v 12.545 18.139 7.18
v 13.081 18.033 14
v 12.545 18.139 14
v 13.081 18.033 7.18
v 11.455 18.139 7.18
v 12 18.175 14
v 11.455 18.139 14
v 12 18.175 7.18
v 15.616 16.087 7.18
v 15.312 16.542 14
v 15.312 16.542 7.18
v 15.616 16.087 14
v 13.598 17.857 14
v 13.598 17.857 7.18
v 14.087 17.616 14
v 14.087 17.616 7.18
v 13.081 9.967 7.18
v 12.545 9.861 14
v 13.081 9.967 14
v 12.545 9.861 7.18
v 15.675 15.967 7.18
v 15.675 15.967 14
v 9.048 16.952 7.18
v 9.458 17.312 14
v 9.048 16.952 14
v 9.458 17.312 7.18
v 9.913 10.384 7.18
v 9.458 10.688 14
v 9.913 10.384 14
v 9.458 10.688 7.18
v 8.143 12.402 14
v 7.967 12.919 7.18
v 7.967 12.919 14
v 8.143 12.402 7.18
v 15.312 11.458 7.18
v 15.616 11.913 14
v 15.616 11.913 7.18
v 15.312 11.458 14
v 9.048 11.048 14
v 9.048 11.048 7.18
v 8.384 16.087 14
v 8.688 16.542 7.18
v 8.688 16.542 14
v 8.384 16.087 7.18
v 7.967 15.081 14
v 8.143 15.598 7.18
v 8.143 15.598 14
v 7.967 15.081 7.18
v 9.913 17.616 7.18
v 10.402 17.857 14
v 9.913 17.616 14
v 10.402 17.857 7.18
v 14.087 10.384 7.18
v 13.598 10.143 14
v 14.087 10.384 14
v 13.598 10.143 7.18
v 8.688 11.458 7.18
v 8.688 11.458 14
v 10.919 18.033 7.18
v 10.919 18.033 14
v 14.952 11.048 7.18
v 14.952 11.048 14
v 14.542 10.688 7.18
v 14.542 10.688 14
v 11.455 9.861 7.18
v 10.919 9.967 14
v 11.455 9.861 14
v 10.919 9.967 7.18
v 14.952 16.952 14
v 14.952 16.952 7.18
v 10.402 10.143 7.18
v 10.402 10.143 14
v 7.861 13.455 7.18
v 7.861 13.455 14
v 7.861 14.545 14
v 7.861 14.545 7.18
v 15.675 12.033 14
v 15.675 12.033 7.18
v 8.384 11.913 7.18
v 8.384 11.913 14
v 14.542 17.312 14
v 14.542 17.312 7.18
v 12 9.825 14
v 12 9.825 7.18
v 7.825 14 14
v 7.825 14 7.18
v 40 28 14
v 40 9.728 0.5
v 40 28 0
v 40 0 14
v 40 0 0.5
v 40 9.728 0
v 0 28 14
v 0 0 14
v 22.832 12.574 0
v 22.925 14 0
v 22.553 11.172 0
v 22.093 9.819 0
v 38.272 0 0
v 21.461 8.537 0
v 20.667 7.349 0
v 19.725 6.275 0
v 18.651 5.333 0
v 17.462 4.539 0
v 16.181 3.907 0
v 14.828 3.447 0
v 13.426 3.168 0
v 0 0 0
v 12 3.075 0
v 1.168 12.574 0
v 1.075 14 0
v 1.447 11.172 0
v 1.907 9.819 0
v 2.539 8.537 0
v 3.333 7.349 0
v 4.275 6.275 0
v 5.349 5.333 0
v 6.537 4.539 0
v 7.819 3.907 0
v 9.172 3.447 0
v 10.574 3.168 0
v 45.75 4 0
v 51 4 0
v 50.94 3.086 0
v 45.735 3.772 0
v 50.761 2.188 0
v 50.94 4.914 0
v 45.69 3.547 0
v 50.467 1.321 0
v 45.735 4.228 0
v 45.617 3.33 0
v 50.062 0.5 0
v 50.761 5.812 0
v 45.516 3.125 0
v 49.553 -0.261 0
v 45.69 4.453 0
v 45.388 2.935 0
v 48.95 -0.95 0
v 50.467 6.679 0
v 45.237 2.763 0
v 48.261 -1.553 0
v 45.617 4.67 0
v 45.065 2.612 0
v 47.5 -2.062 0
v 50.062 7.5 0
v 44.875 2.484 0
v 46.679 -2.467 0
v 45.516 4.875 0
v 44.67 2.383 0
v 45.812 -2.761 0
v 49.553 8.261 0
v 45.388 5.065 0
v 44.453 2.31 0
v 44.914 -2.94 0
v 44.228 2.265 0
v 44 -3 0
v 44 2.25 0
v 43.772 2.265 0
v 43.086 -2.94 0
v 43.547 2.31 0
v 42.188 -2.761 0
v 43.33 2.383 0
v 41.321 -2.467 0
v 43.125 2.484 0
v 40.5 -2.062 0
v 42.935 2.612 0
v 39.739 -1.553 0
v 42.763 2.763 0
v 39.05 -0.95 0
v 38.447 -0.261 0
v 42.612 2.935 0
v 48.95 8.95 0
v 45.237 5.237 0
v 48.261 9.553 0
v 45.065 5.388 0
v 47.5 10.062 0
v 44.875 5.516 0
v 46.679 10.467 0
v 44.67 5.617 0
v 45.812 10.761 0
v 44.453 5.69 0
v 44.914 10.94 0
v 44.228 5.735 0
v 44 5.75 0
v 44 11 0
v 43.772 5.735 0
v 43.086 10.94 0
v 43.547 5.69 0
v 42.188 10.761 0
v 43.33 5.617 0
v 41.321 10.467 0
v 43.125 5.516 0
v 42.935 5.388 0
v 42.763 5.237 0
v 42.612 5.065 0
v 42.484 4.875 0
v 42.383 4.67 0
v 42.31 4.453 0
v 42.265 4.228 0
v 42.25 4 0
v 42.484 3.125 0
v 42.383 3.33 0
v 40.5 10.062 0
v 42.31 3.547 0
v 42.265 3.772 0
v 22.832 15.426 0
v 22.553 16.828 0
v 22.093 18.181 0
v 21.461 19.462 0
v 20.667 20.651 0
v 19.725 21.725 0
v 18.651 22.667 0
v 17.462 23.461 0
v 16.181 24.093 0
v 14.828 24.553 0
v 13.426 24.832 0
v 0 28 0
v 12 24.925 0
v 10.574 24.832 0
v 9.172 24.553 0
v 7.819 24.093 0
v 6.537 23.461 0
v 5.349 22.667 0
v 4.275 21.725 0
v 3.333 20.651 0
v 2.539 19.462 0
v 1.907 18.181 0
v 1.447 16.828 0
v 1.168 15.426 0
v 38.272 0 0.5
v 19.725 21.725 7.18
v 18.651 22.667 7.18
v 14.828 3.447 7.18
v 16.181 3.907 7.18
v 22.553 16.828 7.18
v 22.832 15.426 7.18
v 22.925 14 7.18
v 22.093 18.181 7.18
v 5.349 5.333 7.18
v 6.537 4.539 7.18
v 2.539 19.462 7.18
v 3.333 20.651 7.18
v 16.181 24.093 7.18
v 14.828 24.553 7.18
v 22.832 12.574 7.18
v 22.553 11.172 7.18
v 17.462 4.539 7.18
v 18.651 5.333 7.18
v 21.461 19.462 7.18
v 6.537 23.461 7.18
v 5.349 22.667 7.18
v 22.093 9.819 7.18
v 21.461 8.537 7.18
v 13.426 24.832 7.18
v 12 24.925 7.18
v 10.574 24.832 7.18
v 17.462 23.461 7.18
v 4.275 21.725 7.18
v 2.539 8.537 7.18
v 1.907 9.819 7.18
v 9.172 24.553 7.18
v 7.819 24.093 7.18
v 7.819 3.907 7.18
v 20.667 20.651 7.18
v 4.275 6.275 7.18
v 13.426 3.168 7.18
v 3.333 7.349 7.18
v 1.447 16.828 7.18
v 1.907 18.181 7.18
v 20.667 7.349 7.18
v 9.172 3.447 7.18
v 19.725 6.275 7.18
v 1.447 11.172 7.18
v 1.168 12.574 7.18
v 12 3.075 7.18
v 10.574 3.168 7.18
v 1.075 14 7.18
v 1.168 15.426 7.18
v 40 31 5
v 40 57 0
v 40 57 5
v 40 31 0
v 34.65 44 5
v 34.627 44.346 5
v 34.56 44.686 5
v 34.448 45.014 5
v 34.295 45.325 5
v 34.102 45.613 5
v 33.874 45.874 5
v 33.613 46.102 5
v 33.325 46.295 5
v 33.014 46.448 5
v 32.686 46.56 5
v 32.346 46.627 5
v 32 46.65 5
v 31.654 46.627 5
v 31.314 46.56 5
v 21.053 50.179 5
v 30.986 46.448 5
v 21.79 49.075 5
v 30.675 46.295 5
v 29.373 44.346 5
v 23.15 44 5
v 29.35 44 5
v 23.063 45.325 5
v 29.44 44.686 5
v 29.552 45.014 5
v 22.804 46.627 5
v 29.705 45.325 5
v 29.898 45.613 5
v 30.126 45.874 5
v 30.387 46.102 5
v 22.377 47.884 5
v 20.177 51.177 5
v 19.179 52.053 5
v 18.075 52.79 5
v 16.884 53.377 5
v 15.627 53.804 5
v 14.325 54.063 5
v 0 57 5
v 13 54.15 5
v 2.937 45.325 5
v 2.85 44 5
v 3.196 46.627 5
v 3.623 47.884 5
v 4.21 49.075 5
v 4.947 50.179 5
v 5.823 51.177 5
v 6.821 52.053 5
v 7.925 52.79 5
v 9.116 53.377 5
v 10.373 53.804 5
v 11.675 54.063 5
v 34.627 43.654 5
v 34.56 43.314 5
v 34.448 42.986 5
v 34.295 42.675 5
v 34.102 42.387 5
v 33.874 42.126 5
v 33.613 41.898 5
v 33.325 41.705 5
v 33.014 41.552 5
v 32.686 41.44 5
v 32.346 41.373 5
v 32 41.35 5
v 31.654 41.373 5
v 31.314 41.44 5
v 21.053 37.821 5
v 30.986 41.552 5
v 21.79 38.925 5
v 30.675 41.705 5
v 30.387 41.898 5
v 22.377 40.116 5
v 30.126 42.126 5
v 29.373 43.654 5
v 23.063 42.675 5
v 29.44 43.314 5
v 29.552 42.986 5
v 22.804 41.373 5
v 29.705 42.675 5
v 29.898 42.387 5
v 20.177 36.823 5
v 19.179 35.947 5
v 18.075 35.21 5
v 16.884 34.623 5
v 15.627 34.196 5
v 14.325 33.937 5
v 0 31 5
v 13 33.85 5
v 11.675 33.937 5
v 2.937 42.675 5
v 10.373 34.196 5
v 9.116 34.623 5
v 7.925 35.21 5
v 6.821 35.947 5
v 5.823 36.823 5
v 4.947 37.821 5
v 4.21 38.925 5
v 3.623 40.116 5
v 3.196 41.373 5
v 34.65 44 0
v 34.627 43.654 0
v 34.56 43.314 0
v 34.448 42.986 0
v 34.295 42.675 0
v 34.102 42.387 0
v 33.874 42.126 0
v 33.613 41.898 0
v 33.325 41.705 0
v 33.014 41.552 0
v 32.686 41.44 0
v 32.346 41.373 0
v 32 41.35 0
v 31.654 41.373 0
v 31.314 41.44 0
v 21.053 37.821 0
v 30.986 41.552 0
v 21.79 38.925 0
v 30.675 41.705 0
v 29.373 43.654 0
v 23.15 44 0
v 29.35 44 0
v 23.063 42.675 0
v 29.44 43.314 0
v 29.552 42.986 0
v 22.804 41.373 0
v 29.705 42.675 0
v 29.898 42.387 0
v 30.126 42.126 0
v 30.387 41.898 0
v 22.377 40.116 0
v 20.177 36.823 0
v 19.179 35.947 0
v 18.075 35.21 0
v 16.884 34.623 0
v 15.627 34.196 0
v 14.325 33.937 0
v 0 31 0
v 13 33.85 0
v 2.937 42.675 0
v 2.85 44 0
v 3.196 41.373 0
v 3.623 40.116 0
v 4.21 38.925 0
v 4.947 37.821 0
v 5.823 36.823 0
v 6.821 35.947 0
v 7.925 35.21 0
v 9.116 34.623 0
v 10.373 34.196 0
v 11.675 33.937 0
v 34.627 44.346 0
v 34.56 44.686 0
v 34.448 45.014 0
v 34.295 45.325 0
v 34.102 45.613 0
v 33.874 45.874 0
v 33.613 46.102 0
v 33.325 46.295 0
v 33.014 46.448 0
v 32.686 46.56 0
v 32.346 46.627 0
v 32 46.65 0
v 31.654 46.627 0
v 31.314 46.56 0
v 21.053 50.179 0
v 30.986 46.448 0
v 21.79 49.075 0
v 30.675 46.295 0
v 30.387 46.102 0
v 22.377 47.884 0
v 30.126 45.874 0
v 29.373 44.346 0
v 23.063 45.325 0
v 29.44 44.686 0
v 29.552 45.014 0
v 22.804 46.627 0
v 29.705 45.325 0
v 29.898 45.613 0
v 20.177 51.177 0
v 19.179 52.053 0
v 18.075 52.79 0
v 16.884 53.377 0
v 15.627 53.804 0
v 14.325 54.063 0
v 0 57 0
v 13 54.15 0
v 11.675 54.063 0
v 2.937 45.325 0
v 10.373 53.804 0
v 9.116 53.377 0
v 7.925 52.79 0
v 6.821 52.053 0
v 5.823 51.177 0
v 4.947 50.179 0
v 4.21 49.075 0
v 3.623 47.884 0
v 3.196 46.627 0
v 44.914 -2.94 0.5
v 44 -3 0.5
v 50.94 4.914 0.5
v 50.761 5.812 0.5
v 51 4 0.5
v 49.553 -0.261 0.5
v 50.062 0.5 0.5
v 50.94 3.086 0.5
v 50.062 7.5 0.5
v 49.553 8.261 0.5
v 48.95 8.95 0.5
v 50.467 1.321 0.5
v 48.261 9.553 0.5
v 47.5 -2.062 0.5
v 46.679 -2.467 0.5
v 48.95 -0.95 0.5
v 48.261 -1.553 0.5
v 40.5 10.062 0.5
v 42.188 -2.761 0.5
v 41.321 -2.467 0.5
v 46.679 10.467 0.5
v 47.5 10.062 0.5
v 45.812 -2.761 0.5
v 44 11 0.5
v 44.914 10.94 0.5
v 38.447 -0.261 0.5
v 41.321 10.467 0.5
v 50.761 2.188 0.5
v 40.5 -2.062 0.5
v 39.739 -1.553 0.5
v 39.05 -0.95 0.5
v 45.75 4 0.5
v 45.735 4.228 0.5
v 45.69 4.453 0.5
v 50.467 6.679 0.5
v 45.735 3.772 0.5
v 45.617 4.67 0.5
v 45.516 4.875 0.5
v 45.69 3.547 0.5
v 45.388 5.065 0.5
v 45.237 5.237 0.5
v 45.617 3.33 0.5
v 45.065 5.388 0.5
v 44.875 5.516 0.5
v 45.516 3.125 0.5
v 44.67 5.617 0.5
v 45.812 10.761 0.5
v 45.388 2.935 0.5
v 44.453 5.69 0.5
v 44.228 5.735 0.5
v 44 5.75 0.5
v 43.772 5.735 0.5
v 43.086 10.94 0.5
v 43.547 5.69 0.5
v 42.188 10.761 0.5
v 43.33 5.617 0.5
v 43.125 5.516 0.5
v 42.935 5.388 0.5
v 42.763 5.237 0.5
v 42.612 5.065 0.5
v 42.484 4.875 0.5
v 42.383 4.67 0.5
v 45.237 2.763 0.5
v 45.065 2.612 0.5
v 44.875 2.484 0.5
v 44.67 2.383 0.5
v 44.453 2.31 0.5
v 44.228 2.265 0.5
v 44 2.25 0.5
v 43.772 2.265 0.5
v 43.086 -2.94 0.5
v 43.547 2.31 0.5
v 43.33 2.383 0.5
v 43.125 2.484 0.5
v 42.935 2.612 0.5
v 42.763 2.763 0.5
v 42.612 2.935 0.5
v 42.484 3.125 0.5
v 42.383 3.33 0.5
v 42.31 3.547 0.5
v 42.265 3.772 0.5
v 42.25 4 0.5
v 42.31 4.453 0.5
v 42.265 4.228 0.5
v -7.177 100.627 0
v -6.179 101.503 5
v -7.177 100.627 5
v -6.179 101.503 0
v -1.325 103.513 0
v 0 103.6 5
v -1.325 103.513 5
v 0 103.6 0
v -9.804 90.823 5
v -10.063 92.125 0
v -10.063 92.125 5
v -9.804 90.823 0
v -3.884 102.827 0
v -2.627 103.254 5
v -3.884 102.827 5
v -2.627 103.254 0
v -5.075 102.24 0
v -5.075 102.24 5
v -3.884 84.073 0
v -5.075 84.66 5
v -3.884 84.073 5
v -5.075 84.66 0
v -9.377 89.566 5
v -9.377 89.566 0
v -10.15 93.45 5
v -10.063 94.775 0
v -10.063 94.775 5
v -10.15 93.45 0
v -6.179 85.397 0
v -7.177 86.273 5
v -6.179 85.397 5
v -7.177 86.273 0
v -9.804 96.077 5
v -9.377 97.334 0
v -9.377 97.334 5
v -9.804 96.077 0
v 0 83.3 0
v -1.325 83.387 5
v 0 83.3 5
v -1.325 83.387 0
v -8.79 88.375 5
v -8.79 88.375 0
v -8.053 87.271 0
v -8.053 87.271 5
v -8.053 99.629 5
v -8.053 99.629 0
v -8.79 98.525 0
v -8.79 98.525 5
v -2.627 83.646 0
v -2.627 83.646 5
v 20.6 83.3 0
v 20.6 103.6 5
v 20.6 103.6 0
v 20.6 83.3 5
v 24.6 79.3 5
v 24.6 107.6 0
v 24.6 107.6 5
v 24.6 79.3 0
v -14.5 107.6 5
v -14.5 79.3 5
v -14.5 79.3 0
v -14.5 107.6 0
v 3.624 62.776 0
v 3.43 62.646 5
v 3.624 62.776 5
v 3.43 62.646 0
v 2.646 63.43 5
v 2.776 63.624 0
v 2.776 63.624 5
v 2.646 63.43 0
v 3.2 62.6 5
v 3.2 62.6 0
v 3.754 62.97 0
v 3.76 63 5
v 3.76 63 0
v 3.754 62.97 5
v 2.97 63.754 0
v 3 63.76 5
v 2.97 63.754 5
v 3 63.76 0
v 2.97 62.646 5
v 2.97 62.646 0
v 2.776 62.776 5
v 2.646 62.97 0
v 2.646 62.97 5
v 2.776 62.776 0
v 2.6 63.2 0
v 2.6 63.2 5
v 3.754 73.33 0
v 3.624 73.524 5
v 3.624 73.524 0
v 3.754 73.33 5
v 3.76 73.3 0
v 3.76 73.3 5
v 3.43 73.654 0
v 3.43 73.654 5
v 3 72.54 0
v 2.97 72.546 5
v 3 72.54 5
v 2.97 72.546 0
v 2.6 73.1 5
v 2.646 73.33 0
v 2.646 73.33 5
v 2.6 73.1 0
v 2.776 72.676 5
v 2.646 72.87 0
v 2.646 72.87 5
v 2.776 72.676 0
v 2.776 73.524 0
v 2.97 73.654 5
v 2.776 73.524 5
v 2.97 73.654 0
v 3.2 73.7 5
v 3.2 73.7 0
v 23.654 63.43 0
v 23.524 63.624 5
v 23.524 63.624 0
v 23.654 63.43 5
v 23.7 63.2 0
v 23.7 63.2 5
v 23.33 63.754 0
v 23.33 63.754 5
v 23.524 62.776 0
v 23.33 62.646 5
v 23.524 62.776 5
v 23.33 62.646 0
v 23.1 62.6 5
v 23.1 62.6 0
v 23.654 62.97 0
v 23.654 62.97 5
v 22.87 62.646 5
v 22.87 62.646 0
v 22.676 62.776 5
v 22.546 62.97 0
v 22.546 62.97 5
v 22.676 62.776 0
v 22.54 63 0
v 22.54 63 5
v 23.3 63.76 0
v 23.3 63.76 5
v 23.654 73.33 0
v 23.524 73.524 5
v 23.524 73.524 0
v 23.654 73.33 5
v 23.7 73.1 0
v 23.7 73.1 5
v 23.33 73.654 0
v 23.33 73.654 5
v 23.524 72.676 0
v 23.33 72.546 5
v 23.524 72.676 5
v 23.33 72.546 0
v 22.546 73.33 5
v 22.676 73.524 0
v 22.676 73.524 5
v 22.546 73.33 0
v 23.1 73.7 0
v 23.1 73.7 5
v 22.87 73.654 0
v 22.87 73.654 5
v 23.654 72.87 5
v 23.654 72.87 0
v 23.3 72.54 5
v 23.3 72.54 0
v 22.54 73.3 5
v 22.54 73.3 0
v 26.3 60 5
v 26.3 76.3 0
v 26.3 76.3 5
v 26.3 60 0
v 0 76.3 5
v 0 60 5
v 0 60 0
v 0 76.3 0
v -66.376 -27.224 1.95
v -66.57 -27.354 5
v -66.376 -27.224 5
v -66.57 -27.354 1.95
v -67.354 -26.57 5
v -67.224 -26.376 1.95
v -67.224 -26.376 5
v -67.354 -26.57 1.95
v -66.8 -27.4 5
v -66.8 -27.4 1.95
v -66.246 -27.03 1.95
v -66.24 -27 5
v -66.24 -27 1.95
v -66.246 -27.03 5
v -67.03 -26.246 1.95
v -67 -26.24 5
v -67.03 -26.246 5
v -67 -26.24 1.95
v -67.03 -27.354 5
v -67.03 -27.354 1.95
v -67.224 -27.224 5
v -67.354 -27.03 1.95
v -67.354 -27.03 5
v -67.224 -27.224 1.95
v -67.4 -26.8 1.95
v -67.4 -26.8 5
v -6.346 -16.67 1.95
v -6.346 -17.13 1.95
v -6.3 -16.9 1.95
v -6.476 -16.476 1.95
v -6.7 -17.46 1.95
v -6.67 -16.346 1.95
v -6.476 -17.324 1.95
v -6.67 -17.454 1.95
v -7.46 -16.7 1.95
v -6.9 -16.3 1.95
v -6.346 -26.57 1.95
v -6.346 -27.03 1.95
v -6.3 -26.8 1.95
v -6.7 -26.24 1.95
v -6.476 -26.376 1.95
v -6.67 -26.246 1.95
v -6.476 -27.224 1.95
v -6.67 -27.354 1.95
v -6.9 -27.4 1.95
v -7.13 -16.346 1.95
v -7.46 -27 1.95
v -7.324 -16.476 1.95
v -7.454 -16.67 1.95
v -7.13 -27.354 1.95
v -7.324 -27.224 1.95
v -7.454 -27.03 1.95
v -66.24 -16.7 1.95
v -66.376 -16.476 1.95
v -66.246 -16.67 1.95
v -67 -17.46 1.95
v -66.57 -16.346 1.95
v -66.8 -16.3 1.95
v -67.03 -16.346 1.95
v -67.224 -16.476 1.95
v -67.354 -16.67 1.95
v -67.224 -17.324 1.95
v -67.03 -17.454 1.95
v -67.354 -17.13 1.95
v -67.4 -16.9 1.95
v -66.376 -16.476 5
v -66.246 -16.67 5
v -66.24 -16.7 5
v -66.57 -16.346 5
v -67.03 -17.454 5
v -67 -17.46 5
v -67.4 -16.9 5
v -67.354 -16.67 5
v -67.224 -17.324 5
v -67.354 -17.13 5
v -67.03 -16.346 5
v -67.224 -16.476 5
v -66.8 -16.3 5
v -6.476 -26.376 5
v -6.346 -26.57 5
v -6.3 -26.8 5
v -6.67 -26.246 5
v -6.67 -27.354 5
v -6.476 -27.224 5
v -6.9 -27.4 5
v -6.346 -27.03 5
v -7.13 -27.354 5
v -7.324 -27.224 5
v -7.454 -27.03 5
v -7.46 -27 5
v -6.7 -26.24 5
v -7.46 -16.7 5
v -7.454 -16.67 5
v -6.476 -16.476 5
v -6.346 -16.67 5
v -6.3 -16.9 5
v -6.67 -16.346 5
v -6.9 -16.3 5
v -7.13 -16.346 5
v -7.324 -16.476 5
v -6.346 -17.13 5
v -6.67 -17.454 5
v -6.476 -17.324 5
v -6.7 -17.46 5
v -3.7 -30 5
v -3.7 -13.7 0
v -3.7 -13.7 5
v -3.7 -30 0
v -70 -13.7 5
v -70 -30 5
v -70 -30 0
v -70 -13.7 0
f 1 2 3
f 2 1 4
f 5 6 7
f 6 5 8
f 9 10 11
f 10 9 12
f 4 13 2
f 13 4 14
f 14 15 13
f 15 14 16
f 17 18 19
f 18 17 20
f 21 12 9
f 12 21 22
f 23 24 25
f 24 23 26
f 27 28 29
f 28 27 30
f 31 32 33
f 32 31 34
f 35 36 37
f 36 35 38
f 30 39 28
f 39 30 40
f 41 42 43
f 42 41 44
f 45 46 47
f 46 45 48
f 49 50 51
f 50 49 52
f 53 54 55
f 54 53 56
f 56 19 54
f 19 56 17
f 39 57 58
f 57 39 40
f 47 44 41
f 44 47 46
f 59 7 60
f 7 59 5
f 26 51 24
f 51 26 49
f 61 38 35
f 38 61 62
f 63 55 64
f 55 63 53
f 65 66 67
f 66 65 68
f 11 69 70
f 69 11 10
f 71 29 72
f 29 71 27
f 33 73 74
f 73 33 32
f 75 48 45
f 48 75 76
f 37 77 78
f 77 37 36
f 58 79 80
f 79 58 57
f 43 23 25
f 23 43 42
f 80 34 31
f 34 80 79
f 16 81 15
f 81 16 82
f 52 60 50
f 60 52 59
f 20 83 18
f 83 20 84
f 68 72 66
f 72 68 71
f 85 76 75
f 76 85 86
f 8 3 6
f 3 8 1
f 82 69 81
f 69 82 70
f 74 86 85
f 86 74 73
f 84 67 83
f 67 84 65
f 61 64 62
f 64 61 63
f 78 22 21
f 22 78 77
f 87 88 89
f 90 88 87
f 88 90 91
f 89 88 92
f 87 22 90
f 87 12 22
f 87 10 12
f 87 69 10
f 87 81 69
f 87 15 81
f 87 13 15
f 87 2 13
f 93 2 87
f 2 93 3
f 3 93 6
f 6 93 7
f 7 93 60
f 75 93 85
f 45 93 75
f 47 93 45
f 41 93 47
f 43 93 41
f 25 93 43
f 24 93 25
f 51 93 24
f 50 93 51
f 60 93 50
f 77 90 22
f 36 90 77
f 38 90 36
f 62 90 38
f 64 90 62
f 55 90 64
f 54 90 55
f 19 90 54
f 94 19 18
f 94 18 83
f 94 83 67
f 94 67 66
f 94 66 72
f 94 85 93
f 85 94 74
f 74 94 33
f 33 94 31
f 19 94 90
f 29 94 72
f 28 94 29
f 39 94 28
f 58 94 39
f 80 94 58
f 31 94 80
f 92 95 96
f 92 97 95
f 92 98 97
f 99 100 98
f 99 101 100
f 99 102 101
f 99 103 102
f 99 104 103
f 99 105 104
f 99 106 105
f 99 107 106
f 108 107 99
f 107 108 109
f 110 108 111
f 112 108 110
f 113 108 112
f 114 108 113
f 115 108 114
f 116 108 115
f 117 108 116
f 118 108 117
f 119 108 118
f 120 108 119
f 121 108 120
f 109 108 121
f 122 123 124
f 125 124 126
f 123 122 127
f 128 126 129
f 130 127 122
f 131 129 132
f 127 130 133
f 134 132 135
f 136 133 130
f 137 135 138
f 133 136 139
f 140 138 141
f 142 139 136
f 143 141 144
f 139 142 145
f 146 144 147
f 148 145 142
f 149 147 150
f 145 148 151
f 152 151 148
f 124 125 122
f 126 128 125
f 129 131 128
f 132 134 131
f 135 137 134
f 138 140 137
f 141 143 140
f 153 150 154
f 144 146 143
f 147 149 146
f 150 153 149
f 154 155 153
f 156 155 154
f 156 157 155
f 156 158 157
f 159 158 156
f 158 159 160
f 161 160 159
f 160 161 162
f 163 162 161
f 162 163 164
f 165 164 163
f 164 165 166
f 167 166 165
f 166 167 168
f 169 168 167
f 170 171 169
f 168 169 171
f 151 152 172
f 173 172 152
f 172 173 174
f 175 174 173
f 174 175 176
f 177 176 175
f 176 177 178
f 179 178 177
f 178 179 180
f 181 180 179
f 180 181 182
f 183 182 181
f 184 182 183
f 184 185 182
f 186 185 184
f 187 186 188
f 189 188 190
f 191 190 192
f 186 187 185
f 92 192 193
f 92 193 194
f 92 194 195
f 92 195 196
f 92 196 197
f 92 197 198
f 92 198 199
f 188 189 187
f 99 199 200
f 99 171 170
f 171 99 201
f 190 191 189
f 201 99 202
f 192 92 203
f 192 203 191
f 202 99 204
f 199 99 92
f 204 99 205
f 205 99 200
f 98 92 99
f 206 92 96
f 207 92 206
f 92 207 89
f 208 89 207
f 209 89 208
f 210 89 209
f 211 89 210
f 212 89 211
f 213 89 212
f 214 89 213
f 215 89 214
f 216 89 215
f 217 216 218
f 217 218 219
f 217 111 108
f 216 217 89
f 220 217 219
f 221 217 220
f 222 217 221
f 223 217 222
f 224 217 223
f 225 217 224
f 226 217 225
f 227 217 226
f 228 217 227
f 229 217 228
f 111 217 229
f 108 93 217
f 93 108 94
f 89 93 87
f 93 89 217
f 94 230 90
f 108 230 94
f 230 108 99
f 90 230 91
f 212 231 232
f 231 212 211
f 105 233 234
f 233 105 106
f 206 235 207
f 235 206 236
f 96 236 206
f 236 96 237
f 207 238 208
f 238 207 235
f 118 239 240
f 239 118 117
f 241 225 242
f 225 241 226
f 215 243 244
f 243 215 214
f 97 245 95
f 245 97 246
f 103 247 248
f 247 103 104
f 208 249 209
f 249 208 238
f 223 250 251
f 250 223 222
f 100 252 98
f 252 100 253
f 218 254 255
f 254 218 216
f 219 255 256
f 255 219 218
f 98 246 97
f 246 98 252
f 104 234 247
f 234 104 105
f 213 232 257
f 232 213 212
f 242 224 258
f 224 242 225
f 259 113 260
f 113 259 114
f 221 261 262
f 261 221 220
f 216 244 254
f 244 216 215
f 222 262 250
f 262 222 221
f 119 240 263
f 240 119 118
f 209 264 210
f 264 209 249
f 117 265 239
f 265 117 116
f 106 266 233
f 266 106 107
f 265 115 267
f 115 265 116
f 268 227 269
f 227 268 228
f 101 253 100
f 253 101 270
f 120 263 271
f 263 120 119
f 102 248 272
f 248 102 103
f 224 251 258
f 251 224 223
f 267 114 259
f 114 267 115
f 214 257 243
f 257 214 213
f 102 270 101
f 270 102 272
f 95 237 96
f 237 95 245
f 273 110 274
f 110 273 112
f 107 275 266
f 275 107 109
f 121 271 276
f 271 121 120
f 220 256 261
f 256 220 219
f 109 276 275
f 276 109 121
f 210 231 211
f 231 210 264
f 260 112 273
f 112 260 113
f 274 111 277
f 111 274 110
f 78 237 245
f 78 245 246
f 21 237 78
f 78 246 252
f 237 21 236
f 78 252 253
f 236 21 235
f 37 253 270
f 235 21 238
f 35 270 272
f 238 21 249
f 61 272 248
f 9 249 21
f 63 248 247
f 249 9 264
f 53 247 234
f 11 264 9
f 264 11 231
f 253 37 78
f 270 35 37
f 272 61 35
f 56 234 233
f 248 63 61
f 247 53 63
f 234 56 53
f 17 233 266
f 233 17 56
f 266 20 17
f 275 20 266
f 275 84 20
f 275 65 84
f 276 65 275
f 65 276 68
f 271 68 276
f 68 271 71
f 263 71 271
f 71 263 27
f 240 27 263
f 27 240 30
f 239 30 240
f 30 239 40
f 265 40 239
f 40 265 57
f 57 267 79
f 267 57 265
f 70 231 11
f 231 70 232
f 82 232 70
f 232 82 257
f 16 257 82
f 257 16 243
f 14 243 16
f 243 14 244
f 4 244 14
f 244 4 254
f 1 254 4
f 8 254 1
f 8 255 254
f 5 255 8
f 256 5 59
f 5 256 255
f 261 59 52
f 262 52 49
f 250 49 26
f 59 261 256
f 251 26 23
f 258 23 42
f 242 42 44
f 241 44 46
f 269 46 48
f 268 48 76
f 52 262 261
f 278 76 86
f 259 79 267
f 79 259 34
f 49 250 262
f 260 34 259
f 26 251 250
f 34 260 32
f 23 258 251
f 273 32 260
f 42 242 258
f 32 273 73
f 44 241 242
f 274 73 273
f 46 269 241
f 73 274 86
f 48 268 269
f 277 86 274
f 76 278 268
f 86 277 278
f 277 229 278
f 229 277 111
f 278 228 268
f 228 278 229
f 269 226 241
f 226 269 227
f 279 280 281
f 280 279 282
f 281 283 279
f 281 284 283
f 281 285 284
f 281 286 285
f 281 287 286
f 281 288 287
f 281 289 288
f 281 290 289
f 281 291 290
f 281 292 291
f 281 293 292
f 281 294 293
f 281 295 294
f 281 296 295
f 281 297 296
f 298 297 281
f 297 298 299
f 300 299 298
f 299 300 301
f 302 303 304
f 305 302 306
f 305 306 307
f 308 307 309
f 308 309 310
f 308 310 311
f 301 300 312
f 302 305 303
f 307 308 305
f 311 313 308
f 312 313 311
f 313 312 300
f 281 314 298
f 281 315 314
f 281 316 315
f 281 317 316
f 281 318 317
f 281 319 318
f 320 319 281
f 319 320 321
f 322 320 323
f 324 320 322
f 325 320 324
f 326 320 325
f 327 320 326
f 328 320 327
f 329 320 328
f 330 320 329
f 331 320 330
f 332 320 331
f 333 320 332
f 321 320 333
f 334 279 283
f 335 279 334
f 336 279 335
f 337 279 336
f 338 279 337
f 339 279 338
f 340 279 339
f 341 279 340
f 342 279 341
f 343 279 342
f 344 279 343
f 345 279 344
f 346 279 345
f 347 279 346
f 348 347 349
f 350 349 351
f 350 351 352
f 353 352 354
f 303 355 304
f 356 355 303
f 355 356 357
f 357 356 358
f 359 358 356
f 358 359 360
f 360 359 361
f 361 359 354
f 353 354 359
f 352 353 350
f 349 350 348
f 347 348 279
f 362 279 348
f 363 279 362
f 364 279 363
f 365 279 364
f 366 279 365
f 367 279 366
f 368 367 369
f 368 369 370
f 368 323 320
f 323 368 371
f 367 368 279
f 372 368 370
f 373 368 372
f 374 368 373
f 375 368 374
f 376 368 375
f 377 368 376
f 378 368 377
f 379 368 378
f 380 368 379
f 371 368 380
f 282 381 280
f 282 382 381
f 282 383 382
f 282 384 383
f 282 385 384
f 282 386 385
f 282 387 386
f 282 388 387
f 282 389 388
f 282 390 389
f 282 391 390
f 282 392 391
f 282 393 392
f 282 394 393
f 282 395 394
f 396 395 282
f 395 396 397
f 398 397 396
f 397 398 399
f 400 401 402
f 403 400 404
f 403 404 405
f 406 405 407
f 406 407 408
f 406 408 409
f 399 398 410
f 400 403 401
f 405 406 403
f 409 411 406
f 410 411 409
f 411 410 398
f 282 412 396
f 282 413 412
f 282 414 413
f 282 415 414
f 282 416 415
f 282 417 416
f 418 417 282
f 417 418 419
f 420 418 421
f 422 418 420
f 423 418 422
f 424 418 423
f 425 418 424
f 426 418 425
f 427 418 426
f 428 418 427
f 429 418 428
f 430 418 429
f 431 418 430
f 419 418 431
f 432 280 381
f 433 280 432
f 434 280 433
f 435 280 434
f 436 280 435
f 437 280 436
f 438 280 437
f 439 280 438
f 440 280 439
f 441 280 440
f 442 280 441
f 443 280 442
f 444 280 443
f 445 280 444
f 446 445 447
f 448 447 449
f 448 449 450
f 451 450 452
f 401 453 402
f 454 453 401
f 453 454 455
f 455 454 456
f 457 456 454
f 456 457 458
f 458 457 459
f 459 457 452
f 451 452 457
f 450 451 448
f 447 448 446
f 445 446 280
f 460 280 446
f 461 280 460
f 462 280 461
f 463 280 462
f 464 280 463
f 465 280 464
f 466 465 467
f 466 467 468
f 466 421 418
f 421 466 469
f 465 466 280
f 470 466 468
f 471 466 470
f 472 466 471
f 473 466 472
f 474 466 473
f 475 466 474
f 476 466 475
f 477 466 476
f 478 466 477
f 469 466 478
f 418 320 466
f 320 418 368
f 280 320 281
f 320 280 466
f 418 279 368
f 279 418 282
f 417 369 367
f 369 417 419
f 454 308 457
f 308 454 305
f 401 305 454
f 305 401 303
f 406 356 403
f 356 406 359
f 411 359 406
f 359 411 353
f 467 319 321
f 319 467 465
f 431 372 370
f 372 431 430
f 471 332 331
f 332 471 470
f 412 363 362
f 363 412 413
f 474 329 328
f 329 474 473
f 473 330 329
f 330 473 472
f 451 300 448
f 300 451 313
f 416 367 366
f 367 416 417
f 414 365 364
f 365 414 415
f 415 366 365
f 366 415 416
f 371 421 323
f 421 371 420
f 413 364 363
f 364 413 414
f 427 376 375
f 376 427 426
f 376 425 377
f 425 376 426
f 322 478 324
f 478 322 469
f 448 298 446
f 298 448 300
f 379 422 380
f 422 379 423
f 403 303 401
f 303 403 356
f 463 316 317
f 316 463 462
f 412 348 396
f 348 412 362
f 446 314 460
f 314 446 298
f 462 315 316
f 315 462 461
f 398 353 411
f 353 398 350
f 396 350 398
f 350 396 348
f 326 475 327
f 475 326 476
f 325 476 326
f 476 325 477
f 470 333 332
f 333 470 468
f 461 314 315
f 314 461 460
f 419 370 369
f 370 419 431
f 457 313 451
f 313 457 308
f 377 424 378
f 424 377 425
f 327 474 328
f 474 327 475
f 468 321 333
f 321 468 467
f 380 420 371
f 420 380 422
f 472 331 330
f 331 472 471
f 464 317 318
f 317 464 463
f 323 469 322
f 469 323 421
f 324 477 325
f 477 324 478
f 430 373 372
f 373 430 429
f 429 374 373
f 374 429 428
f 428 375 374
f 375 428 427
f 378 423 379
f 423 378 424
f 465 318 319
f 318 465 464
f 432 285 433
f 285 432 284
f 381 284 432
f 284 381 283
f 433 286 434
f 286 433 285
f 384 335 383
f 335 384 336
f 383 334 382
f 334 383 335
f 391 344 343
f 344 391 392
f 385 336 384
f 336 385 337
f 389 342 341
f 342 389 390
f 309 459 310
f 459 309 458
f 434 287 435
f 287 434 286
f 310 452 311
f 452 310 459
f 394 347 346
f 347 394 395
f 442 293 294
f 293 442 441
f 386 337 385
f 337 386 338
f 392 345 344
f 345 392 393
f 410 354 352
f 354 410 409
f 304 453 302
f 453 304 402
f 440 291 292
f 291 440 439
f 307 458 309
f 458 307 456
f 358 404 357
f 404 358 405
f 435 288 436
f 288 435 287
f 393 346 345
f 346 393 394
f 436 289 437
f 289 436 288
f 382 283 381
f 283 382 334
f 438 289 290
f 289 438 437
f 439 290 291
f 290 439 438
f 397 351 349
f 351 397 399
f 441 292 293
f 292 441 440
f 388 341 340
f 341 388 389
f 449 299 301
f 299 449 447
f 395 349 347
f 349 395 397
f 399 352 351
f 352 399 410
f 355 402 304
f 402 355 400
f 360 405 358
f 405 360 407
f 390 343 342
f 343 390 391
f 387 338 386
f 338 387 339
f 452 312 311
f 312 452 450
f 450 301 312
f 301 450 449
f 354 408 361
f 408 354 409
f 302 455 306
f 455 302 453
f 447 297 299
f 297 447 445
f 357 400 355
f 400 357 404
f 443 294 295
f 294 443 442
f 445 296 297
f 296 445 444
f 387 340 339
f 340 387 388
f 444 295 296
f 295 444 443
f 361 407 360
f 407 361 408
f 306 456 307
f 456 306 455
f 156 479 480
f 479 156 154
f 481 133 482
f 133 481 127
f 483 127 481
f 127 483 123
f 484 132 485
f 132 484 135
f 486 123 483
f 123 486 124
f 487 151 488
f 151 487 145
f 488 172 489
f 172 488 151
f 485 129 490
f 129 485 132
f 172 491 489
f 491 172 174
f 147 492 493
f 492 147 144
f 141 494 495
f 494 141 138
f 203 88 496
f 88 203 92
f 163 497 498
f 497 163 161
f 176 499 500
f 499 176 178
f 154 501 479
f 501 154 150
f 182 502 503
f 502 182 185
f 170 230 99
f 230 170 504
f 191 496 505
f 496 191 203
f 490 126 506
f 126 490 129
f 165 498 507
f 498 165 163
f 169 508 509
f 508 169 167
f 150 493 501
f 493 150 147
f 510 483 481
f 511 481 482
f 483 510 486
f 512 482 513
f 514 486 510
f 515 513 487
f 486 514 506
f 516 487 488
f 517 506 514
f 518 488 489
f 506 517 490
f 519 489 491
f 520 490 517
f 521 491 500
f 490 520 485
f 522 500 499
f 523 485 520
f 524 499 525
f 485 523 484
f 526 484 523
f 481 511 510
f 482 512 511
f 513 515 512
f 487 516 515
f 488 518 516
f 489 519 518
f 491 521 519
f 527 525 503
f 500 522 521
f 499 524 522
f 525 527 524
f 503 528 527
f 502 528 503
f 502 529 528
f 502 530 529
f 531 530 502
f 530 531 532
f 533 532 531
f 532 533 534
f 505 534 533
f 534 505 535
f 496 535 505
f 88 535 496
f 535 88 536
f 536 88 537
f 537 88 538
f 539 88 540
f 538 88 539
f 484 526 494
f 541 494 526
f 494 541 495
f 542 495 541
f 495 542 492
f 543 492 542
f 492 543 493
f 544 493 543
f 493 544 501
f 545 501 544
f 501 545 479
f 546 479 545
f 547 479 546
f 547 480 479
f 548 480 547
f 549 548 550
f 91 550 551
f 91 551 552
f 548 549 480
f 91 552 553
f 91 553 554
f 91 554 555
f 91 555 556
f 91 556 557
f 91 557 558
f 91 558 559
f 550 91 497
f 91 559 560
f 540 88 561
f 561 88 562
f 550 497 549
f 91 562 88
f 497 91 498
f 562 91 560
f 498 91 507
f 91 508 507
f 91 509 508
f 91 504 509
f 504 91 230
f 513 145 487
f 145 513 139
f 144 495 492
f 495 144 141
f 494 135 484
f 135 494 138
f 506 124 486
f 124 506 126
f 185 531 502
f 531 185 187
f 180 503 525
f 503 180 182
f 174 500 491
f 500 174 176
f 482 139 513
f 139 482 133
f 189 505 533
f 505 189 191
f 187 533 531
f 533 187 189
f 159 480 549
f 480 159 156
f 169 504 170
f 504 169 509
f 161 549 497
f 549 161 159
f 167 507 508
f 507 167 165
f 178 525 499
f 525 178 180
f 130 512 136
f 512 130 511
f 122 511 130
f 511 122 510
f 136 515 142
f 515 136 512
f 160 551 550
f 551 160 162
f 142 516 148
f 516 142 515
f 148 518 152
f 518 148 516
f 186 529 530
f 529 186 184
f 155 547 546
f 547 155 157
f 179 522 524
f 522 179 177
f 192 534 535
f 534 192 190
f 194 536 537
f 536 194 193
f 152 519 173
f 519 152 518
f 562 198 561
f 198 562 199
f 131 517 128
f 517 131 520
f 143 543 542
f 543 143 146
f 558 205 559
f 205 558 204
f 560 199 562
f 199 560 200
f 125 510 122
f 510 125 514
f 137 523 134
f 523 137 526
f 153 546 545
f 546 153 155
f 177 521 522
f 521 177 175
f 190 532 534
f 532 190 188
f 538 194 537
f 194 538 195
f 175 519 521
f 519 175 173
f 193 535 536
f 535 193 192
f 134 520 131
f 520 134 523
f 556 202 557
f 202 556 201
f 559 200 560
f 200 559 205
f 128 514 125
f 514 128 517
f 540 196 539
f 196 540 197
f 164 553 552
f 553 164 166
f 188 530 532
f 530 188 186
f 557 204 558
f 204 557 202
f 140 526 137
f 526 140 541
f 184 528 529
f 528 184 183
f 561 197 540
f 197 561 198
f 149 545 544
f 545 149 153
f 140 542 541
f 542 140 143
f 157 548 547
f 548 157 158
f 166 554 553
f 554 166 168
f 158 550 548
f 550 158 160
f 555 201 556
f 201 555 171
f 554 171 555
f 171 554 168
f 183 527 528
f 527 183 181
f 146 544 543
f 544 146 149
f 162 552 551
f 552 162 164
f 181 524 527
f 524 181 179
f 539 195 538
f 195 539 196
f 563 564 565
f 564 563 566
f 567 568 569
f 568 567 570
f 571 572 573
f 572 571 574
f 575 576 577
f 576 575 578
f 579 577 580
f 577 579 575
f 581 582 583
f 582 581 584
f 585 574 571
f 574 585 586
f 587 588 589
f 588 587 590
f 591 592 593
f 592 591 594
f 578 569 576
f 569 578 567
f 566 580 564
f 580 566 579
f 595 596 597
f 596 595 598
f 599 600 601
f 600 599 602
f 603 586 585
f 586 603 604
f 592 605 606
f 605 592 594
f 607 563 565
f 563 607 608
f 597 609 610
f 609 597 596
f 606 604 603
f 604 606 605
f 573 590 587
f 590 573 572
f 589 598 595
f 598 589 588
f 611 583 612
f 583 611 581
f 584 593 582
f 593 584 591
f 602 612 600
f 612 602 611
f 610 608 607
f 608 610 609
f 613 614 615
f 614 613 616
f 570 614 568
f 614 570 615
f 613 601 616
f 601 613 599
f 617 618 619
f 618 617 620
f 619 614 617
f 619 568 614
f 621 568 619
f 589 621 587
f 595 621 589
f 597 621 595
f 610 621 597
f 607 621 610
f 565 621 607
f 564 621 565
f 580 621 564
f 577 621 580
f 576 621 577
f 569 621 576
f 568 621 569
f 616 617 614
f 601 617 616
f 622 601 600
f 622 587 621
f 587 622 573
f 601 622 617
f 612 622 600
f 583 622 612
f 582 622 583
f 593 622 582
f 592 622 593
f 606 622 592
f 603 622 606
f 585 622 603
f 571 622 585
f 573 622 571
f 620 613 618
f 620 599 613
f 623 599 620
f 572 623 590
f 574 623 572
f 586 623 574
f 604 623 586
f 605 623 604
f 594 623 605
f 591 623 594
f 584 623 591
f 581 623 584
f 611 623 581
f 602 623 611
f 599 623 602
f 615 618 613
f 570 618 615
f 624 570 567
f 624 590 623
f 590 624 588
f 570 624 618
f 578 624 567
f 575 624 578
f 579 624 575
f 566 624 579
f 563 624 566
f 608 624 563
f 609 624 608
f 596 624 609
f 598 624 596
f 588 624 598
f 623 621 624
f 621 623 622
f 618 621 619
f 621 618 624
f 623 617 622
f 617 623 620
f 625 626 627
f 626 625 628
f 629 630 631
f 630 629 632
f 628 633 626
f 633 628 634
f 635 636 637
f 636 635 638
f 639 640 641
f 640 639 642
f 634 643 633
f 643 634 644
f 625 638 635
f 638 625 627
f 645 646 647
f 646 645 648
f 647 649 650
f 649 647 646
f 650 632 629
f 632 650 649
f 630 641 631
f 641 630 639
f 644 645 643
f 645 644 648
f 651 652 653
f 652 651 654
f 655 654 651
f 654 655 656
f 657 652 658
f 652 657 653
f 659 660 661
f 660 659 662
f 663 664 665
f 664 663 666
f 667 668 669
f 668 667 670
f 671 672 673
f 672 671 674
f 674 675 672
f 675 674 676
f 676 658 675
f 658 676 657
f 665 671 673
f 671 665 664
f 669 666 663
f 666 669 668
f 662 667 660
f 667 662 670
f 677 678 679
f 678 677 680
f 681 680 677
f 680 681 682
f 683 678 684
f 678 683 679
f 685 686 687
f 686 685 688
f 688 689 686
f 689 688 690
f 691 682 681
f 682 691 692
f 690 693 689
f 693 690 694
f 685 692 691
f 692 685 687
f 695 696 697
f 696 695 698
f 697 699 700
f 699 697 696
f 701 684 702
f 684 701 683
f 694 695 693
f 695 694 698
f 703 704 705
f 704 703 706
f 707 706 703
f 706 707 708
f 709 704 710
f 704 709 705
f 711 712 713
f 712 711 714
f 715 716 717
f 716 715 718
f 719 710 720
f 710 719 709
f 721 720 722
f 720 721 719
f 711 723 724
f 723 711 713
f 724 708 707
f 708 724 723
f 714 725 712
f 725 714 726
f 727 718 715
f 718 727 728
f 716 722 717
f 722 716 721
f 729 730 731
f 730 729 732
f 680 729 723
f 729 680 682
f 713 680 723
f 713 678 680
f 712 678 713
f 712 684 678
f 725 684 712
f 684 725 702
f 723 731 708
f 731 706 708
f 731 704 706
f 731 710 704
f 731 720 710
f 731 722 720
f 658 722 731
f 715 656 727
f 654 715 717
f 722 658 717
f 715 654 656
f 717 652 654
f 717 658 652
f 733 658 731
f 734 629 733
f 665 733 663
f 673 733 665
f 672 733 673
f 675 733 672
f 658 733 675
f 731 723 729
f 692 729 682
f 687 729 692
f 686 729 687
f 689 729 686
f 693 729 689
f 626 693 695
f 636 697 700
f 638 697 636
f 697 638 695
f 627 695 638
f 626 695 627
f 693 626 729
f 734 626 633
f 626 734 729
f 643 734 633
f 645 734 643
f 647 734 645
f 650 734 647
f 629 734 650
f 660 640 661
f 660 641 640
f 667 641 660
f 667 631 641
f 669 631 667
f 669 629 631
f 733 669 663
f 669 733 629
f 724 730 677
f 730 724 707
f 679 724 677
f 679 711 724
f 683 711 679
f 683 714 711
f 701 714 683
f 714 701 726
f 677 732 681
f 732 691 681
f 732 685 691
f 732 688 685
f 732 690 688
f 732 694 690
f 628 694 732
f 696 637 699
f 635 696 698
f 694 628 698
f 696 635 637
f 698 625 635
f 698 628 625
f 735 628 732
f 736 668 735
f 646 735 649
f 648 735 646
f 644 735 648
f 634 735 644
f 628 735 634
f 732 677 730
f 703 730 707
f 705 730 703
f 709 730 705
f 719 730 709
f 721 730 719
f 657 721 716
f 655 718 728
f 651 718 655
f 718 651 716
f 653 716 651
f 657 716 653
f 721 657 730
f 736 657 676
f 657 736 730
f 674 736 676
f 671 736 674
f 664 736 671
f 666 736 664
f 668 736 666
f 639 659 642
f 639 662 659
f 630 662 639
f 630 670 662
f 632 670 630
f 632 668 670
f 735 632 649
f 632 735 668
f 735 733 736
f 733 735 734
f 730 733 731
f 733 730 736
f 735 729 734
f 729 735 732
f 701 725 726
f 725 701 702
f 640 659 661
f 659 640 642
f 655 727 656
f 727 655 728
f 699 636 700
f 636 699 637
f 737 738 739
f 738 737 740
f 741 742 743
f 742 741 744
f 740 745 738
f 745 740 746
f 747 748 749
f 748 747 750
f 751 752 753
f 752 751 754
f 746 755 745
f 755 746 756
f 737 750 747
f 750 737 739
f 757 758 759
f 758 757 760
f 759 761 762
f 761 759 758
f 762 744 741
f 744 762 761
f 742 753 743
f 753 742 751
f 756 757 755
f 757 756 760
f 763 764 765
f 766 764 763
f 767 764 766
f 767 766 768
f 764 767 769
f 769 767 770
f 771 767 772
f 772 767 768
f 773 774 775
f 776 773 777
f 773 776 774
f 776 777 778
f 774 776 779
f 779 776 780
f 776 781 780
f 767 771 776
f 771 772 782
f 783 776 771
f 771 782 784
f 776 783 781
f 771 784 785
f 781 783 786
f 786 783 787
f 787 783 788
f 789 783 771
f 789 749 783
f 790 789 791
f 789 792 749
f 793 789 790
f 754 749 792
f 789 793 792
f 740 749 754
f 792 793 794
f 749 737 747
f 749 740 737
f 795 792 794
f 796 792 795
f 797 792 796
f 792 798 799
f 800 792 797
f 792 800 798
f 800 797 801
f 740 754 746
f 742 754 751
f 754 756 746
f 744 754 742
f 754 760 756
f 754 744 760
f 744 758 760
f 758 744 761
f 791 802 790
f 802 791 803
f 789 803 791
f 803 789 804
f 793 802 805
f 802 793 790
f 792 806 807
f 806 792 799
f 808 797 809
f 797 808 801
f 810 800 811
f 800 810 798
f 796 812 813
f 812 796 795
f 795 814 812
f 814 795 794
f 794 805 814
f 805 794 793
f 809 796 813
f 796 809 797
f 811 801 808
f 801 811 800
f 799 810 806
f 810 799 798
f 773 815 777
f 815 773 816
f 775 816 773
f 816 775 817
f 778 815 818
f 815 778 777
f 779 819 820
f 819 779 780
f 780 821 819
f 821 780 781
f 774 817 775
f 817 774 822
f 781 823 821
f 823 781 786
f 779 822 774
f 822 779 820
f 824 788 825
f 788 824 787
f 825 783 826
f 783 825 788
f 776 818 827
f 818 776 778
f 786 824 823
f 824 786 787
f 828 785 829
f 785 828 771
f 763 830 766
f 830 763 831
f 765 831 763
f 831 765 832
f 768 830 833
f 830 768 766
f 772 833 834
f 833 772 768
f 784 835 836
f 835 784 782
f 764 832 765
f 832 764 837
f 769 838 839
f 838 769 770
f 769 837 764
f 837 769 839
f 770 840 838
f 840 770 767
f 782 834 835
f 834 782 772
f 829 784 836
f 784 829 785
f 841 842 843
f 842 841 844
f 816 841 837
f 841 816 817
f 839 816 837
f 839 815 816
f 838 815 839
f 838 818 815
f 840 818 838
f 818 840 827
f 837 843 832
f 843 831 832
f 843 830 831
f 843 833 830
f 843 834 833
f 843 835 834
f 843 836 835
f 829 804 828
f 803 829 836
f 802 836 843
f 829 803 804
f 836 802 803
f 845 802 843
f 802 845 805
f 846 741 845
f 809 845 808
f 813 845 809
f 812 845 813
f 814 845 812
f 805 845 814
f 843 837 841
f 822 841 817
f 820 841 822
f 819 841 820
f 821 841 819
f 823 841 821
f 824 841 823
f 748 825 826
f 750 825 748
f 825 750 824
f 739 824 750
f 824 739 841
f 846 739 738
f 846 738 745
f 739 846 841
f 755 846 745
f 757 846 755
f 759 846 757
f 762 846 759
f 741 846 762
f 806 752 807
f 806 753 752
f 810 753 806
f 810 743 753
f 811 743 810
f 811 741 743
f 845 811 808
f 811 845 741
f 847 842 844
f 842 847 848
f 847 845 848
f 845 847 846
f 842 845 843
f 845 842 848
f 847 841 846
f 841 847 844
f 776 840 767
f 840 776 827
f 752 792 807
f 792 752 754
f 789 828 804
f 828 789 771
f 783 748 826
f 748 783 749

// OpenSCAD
// Gen-DC — fit coupon: O20/O5 THROUGH pockets at carrier thickness (test on a steel offcut), 608 seat,
// D-flat bore, gap shim, and one bobbin-bay slice (bobbin footprint + bay_clear) to test former fit.
include <parameters.scad>;
$fn = 48;
// D-flat keyed bore: flat faces +X (angle 0 = magnet pocket 0 = index notch)
module dflat_bore(h) {
    intersection() {
        cylinder(d=shaft_bore, h=h);
        translate([-shaft_bore, -shaft_bore, 0]) cube([shaft_bore + dflat_x, 2*shaft_bore, h]);
    }
}
module sector_2d(r_in, r_out, ang) {
    polygon([
        for (a = [-ang/2 : ang/24 : ang/2]) [r_in*cos(a), r_in*sin(a)],
        for (a = [ang/2 : -ang/24 : -ang/2]) [r_out*cos(a), r_out*sin(a)]
    ]);
}
module footprint_2d() { offset(r=wall) sector_2d(coil_id_r, coil_od_r, span_deg); }
module hub_2d()       { offset(delta=-coil_core_inset) sector_2d(coil_id_r, coil_od_r, span_deg); }

block_w = 40; block_d = 28; block_h = 14;
difference() {
    cube([block_w, block_d, block_h]);
    translate([12, block_d/2, -0.02]) cylinder(d=bearing_d, h=bearing_h);
    translate([12, block_d/2, -0.1]) dflat_bore(block_h + 1);
}
translate([0, block_d + 3, 0]) difference() {
    cube([40, 26, carrier_thick]);
    translate([13, 13, -0.1]) cylinder(d=large_pocket_d, h=carrier_thick + 0.2);
    translate([32, 13, -0.1]) cylinder(d=small_pocket_d, h=carrier_thick + 0.2);
}
translate([block_w + 4, 4, 0])
    difference() {
        cylinder(d=spacer_pad_od, h=gap_spacer_h);
        translate([0, 0, -0.1]) cylinder(d=spacer_pad_id, h=gap_spacer_h + 0.2);
    }
// KEYHOLE pole pocket test (2026-10-18): O20 disc pocket + N42 20x10x5 block pocket merged (hull), as on the arcs.
// Drop a disc and a block in: they must push each other onto the two far walls and sit flat. Block pocket has corner reliefs.
translate([0, block_d + 3 + 26 + 3 + block_radial + block_pocket_clear + 6 + 3 + max(block_tangential, large_pocket_d) / 2 + 4, 0]) difference() {
    translate([-14.5, -(max(block_tangential, large_pocket_d) / 2 + 4), 0]) cube([14.5 + abs(block_R_list[0] - R_large) + block_radial / 2 + 4, max(block_tangential, large_pocket_d) + 8, carrier_thick]);
    translate([0, 0, -0.1]) {
        translate([disc_pocket_shift * sign(block_R_list[0] - R_large), 0, 0]) cylinder(d=large_pocket_d, h=carrier_thick + 0.2);
        translate([disc_pocket_shift * sign(block_R_list[0] - R_large), -(block_tangential + block_pocket_clear)/2, 0])
            cube([abs(block_R_list[0] - R_large) - abs(block_pocket_shift) + (block_radial + block_pocket_clear)/2 - disc_pocket_shift * sign(block_R_list[0] - R_large), block_tangential + block_pocket_clear, carrier_thick + 0.2]);
    }
}
// N42 20x10x5 BLOCK through-pocket test (block + block_pocket_clear, 1.2 mm corner reliefs), 2026-10-16
translate([0, block_d + 3 + 26 + 3, 0]) difference() {
    cube([block_tangential + block_pocket_clear + 6, block_radial + block_pocket_clear + 6, carrier_thick]);
    translate([3, 3, -0.1]) cube([block_tangential + block_pocket_clear, block_radial + block_pocket_clear, carrier_thick + 0.2]);
    for (x = [3.2, 3 + block_tangential + block_pocket_clear - 0.2], y = [3.2, 3 + block_radial + block_pocket_clear - 0.2])
        translate([x, y, -0.1]) cylinder(d=1.2, h=carrier_thick + 0.2, $fn=16);
}
// N52 60x10x3 BAR blind-pocket test (2026-10-21): bar + 0.3 mm, depth block2_pocket_depth: the bar face must sit flush with the top.
translate([-70, -30, 0]) difference() {
    cube([block2_tangential + block2_pocket_clear + 6, block2_radial + block2_pocket_clear + 6, carrier_thick]);
    translate([3, 3, carrier_thick - block2_pocket_depth]) cube([block2_tangential + block2_pocket_clear, block2_radial + block2_pocket_clear, carrier_thick]);
    for (x = [3.2, 3 + block2_tangential + block2_pocket_clear - 0.2], y = [3.2, 3 + block2_radial + block2_pocket_clear - 0.2])
        translate([x, y, carrier_thick - block2_pocket_depth]) cylinder(d=1.2, h=carrier_thick, $fn=16);
}
